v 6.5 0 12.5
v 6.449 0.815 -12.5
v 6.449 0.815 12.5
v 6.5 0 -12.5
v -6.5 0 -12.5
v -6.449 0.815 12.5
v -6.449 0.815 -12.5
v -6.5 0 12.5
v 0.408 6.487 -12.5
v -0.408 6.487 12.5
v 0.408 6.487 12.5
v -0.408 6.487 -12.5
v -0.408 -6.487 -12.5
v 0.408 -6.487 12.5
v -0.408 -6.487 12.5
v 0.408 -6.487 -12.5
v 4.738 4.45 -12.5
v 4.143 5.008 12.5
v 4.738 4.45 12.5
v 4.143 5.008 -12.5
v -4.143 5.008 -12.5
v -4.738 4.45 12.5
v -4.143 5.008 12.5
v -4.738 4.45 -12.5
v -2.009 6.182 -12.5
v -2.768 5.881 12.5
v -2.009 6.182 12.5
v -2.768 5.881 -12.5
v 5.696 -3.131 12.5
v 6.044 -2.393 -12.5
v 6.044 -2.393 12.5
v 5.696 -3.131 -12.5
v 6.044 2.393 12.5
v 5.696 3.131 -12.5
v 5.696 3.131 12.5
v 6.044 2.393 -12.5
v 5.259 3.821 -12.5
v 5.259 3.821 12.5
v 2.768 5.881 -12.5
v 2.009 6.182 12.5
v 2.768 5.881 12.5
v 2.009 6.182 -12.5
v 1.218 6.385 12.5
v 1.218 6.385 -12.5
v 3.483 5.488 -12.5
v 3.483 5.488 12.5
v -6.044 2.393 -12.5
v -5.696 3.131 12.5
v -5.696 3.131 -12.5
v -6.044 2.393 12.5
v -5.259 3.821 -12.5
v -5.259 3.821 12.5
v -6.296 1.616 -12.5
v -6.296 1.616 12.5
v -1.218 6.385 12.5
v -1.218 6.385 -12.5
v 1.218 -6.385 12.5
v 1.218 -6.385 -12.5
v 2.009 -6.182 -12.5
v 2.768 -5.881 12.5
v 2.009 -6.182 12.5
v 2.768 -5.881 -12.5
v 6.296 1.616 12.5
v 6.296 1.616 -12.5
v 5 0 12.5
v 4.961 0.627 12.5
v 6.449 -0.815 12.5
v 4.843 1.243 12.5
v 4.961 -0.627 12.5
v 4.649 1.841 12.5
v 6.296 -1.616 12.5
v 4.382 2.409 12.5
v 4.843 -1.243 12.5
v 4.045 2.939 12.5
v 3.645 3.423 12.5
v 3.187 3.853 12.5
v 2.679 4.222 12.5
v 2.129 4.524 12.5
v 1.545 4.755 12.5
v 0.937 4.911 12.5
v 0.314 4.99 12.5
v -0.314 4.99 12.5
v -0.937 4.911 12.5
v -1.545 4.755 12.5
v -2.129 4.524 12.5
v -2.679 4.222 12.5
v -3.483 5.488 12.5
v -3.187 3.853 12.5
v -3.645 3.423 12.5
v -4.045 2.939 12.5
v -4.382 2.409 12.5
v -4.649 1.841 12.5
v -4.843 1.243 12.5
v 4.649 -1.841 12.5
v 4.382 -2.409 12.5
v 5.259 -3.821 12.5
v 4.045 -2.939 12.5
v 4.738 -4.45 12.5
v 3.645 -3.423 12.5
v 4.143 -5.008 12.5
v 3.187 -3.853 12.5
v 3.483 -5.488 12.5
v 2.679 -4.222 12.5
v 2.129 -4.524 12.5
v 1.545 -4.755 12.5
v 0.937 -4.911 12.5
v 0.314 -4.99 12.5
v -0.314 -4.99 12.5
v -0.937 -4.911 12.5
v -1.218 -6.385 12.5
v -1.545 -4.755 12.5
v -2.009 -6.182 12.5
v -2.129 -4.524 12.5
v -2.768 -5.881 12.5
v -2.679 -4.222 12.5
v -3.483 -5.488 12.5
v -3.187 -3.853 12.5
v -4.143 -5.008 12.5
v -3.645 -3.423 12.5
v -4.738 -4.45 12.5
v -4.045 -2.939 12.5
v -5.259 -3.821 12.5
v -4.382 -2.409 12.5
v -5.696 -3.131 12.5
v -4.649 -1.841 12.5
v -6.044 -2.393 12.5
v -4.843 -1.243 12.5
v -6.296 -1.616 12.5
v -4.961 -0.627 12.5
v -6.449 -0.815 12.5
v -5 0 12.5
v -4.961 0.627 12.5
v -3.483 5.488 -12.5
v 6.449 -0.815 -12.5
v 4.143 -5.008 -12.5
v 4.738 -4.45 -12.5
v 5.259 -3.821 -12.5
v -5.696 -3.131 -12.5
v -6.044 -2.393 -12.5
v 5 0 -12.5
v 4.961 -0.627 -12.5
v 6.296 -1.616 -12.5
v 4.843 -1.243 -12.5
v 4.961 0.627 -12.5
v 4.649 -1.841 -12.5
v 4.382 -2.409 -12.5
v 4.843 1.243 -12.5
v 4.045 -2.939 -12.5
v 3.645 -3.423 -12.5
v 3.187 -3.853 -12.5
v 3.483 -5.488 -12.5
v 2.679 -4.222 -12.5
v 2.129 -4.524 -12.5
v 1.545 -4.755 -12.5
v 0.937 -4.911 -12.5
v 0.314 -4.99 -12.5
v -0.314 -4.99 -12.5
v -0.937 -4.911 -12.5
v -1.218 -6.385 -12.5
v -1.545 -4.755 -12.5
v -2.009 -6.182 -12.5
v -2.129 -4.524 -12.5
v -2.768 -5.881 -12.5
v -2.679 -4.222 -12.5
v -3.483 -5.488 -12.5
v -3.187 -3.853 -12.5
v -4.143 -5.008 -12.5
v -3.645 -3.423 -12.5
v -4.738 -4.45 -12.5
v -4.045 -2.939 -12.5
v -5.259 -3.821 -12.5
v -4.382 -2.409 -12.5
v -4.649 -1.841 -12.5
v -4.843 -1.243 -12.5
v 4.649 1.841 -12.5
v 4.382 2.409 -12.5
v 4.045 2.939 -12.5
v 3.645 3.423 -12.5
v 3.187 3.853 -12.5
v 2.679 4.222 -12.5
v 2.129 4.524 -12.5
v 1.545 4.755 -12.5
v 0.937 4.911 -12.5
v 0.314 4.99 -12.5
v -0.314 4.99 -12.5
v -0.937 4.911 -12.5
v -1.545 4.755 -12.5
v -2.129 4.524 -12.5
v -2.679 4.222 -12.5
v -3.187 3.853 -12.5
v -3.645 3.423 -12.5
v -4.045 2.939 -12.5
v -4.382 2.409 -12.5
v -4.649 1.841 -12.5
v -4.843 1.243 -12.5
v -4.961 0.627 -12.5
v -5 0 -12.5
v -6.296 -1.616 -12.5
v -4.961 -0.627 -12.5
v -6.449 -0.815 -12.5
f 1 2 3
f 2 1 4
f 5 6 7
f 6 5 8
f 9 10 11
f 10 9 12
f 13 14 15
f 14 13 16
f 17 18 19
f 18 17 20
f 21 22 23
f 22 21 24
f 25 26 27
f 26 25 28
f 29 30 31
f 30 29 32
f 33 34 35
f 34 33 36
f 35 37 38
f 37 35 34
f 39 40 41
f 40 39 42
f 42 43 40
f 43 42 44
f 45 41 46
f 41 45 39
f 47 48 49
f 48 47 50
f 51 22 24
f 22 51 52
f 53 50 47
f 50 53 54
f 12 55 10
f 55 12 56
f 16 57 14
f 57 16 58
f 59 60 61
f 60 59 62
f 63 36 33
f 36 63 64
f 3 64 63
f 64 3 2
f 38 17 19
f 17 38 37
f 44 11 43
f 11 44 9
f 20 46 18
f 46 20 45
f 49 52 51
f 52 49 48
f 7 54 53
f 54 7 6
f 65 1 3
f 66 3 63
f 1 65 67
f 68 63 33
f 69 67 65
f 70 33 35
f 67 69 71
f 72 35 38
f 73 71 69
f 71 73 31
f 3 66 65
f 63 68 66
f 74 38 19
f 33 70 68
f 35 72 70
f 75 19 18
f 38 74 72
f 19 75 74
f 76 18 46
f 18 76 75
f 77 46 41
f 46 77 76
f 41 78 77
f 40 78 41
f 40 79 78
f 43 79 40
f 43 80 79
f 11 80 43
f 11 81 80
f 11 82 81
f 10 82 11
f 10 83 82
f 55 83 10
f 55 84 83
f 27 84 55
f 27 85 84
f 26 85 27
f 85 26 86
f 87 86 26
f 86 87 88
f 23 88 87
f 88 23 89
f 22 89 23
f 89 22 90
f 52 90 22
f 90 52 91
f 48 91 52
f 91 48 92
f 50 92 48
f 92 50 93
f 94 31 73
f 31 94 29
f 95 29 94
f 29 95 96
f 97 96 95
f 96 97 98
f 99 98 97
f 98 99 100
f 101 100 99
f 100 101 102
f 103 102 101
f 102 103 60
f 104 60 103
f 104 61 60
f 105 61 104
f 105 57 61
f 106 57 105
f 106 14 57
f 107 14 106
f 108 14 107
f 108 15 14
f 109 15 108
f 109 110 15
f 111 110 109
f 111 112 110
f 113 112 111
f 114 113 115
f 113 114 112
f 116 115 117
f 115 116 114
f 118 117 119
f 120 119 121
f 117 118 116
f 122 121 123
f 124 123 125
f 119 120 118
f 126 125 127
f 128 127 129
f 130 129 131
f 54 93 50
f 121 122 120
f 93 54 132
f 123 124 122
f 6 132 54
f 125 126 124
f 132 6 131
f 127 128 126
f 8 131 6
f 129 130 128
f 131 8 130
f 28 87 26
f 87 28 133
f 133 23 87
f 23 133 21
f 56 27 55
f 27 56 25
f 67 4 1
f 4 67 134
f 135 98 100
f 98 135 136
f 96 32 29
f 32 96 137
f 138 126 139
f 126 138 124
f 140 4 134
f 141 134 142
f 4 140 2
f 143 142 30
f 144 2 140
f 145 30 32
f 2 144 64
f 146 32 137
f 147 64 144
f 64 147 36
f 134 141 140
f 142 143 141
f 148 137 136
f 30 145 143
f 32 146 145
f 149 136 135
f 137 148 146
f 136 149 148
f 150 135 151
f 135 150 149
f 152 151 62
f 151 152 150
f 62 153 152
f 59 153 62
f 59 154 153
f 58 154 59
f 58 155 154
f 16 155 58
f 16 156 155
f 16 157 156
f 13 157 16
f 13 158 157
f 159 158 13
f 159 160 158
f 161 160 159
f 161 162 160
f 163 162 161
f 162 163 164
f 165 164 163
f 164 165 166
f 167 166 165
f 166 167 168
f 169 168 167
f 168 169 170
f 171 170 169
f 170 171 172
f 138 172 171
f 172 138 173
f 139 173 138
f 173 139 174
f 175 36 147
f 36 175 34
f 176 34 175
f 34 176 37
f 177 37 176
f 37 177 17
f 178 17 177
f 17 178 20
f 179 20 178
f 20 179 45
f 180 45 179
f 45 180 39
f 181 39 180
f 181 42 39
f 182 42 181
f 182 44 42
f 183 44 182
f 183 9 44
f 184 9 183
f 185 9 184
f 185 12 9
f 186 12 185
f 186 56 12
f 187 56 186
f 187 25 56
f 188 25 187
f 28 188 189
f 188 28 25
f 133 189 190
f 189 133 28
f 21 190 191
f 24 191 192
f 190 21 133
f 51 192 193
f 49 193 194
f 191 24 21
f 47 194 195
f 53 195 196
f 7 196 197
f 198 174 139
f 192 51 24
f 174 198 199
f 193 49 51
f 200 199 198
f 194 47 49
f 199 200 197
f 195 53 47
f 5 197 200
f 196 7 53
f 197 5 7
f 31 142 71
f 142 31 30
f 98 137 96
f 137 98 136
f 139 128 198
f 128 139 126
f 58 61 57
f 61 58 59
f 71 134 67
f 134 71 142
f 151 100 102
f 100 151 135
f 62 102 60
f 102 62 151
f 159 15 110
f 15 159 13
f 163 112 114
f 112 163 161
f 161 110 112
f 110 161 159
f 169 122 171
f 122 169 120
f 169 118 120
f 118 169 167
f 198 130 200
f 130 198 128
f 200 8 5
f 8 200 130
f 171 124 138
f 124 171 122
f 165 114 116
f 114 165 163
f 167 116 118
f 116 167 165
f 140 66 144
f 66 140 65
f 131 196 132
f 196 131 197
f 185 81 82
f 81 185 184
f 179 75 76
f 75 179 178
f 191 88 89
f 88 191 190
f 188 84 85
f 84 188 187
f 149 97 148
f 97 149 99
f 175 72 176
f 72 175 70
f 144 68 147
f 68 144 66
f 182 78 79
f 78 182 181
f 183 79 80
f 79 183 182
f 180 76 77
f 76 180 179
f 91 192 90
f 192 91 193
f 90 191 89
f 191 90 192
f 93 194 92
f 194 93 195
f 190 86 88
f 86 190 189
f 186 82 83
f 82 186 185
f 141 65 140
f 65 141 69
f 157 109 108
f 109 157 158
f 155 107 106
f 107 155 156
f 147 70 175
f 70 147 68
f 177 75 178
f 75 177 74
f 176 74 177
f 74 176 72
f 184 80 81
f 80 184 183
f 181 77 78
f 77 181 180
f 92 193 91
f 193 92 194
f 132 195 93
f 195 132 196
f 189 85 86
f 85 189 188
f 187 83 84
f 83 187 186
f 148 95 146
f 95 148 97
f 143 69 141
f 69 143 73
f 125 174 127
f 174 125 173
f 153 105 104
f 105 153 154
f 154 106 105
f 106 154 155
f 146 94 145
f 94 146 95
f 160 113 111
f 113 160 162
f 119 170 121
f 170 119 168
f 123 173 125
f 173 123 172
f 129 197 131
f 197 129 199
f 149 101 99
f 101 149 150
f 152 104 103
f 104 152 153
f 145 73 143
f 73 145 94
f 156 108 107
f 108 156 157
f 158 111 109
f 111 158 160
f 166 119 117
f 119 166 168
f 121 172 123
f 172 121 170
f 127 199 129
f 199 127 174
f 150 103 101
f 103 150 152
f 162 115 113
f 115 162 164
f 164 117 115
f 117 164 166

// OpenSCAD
$fn = 50;


difference() {
	union() {
		translate(v = [0, 0, -12.5000000000]) {
			cylinder(h = 25, r = 6.5000000000);
		}
	}
	union() {
		translate(v = [0, 0, -100.0000000000]) {
			cylinder(h = 200, r = 5.0000000000);
		}
	}
}
